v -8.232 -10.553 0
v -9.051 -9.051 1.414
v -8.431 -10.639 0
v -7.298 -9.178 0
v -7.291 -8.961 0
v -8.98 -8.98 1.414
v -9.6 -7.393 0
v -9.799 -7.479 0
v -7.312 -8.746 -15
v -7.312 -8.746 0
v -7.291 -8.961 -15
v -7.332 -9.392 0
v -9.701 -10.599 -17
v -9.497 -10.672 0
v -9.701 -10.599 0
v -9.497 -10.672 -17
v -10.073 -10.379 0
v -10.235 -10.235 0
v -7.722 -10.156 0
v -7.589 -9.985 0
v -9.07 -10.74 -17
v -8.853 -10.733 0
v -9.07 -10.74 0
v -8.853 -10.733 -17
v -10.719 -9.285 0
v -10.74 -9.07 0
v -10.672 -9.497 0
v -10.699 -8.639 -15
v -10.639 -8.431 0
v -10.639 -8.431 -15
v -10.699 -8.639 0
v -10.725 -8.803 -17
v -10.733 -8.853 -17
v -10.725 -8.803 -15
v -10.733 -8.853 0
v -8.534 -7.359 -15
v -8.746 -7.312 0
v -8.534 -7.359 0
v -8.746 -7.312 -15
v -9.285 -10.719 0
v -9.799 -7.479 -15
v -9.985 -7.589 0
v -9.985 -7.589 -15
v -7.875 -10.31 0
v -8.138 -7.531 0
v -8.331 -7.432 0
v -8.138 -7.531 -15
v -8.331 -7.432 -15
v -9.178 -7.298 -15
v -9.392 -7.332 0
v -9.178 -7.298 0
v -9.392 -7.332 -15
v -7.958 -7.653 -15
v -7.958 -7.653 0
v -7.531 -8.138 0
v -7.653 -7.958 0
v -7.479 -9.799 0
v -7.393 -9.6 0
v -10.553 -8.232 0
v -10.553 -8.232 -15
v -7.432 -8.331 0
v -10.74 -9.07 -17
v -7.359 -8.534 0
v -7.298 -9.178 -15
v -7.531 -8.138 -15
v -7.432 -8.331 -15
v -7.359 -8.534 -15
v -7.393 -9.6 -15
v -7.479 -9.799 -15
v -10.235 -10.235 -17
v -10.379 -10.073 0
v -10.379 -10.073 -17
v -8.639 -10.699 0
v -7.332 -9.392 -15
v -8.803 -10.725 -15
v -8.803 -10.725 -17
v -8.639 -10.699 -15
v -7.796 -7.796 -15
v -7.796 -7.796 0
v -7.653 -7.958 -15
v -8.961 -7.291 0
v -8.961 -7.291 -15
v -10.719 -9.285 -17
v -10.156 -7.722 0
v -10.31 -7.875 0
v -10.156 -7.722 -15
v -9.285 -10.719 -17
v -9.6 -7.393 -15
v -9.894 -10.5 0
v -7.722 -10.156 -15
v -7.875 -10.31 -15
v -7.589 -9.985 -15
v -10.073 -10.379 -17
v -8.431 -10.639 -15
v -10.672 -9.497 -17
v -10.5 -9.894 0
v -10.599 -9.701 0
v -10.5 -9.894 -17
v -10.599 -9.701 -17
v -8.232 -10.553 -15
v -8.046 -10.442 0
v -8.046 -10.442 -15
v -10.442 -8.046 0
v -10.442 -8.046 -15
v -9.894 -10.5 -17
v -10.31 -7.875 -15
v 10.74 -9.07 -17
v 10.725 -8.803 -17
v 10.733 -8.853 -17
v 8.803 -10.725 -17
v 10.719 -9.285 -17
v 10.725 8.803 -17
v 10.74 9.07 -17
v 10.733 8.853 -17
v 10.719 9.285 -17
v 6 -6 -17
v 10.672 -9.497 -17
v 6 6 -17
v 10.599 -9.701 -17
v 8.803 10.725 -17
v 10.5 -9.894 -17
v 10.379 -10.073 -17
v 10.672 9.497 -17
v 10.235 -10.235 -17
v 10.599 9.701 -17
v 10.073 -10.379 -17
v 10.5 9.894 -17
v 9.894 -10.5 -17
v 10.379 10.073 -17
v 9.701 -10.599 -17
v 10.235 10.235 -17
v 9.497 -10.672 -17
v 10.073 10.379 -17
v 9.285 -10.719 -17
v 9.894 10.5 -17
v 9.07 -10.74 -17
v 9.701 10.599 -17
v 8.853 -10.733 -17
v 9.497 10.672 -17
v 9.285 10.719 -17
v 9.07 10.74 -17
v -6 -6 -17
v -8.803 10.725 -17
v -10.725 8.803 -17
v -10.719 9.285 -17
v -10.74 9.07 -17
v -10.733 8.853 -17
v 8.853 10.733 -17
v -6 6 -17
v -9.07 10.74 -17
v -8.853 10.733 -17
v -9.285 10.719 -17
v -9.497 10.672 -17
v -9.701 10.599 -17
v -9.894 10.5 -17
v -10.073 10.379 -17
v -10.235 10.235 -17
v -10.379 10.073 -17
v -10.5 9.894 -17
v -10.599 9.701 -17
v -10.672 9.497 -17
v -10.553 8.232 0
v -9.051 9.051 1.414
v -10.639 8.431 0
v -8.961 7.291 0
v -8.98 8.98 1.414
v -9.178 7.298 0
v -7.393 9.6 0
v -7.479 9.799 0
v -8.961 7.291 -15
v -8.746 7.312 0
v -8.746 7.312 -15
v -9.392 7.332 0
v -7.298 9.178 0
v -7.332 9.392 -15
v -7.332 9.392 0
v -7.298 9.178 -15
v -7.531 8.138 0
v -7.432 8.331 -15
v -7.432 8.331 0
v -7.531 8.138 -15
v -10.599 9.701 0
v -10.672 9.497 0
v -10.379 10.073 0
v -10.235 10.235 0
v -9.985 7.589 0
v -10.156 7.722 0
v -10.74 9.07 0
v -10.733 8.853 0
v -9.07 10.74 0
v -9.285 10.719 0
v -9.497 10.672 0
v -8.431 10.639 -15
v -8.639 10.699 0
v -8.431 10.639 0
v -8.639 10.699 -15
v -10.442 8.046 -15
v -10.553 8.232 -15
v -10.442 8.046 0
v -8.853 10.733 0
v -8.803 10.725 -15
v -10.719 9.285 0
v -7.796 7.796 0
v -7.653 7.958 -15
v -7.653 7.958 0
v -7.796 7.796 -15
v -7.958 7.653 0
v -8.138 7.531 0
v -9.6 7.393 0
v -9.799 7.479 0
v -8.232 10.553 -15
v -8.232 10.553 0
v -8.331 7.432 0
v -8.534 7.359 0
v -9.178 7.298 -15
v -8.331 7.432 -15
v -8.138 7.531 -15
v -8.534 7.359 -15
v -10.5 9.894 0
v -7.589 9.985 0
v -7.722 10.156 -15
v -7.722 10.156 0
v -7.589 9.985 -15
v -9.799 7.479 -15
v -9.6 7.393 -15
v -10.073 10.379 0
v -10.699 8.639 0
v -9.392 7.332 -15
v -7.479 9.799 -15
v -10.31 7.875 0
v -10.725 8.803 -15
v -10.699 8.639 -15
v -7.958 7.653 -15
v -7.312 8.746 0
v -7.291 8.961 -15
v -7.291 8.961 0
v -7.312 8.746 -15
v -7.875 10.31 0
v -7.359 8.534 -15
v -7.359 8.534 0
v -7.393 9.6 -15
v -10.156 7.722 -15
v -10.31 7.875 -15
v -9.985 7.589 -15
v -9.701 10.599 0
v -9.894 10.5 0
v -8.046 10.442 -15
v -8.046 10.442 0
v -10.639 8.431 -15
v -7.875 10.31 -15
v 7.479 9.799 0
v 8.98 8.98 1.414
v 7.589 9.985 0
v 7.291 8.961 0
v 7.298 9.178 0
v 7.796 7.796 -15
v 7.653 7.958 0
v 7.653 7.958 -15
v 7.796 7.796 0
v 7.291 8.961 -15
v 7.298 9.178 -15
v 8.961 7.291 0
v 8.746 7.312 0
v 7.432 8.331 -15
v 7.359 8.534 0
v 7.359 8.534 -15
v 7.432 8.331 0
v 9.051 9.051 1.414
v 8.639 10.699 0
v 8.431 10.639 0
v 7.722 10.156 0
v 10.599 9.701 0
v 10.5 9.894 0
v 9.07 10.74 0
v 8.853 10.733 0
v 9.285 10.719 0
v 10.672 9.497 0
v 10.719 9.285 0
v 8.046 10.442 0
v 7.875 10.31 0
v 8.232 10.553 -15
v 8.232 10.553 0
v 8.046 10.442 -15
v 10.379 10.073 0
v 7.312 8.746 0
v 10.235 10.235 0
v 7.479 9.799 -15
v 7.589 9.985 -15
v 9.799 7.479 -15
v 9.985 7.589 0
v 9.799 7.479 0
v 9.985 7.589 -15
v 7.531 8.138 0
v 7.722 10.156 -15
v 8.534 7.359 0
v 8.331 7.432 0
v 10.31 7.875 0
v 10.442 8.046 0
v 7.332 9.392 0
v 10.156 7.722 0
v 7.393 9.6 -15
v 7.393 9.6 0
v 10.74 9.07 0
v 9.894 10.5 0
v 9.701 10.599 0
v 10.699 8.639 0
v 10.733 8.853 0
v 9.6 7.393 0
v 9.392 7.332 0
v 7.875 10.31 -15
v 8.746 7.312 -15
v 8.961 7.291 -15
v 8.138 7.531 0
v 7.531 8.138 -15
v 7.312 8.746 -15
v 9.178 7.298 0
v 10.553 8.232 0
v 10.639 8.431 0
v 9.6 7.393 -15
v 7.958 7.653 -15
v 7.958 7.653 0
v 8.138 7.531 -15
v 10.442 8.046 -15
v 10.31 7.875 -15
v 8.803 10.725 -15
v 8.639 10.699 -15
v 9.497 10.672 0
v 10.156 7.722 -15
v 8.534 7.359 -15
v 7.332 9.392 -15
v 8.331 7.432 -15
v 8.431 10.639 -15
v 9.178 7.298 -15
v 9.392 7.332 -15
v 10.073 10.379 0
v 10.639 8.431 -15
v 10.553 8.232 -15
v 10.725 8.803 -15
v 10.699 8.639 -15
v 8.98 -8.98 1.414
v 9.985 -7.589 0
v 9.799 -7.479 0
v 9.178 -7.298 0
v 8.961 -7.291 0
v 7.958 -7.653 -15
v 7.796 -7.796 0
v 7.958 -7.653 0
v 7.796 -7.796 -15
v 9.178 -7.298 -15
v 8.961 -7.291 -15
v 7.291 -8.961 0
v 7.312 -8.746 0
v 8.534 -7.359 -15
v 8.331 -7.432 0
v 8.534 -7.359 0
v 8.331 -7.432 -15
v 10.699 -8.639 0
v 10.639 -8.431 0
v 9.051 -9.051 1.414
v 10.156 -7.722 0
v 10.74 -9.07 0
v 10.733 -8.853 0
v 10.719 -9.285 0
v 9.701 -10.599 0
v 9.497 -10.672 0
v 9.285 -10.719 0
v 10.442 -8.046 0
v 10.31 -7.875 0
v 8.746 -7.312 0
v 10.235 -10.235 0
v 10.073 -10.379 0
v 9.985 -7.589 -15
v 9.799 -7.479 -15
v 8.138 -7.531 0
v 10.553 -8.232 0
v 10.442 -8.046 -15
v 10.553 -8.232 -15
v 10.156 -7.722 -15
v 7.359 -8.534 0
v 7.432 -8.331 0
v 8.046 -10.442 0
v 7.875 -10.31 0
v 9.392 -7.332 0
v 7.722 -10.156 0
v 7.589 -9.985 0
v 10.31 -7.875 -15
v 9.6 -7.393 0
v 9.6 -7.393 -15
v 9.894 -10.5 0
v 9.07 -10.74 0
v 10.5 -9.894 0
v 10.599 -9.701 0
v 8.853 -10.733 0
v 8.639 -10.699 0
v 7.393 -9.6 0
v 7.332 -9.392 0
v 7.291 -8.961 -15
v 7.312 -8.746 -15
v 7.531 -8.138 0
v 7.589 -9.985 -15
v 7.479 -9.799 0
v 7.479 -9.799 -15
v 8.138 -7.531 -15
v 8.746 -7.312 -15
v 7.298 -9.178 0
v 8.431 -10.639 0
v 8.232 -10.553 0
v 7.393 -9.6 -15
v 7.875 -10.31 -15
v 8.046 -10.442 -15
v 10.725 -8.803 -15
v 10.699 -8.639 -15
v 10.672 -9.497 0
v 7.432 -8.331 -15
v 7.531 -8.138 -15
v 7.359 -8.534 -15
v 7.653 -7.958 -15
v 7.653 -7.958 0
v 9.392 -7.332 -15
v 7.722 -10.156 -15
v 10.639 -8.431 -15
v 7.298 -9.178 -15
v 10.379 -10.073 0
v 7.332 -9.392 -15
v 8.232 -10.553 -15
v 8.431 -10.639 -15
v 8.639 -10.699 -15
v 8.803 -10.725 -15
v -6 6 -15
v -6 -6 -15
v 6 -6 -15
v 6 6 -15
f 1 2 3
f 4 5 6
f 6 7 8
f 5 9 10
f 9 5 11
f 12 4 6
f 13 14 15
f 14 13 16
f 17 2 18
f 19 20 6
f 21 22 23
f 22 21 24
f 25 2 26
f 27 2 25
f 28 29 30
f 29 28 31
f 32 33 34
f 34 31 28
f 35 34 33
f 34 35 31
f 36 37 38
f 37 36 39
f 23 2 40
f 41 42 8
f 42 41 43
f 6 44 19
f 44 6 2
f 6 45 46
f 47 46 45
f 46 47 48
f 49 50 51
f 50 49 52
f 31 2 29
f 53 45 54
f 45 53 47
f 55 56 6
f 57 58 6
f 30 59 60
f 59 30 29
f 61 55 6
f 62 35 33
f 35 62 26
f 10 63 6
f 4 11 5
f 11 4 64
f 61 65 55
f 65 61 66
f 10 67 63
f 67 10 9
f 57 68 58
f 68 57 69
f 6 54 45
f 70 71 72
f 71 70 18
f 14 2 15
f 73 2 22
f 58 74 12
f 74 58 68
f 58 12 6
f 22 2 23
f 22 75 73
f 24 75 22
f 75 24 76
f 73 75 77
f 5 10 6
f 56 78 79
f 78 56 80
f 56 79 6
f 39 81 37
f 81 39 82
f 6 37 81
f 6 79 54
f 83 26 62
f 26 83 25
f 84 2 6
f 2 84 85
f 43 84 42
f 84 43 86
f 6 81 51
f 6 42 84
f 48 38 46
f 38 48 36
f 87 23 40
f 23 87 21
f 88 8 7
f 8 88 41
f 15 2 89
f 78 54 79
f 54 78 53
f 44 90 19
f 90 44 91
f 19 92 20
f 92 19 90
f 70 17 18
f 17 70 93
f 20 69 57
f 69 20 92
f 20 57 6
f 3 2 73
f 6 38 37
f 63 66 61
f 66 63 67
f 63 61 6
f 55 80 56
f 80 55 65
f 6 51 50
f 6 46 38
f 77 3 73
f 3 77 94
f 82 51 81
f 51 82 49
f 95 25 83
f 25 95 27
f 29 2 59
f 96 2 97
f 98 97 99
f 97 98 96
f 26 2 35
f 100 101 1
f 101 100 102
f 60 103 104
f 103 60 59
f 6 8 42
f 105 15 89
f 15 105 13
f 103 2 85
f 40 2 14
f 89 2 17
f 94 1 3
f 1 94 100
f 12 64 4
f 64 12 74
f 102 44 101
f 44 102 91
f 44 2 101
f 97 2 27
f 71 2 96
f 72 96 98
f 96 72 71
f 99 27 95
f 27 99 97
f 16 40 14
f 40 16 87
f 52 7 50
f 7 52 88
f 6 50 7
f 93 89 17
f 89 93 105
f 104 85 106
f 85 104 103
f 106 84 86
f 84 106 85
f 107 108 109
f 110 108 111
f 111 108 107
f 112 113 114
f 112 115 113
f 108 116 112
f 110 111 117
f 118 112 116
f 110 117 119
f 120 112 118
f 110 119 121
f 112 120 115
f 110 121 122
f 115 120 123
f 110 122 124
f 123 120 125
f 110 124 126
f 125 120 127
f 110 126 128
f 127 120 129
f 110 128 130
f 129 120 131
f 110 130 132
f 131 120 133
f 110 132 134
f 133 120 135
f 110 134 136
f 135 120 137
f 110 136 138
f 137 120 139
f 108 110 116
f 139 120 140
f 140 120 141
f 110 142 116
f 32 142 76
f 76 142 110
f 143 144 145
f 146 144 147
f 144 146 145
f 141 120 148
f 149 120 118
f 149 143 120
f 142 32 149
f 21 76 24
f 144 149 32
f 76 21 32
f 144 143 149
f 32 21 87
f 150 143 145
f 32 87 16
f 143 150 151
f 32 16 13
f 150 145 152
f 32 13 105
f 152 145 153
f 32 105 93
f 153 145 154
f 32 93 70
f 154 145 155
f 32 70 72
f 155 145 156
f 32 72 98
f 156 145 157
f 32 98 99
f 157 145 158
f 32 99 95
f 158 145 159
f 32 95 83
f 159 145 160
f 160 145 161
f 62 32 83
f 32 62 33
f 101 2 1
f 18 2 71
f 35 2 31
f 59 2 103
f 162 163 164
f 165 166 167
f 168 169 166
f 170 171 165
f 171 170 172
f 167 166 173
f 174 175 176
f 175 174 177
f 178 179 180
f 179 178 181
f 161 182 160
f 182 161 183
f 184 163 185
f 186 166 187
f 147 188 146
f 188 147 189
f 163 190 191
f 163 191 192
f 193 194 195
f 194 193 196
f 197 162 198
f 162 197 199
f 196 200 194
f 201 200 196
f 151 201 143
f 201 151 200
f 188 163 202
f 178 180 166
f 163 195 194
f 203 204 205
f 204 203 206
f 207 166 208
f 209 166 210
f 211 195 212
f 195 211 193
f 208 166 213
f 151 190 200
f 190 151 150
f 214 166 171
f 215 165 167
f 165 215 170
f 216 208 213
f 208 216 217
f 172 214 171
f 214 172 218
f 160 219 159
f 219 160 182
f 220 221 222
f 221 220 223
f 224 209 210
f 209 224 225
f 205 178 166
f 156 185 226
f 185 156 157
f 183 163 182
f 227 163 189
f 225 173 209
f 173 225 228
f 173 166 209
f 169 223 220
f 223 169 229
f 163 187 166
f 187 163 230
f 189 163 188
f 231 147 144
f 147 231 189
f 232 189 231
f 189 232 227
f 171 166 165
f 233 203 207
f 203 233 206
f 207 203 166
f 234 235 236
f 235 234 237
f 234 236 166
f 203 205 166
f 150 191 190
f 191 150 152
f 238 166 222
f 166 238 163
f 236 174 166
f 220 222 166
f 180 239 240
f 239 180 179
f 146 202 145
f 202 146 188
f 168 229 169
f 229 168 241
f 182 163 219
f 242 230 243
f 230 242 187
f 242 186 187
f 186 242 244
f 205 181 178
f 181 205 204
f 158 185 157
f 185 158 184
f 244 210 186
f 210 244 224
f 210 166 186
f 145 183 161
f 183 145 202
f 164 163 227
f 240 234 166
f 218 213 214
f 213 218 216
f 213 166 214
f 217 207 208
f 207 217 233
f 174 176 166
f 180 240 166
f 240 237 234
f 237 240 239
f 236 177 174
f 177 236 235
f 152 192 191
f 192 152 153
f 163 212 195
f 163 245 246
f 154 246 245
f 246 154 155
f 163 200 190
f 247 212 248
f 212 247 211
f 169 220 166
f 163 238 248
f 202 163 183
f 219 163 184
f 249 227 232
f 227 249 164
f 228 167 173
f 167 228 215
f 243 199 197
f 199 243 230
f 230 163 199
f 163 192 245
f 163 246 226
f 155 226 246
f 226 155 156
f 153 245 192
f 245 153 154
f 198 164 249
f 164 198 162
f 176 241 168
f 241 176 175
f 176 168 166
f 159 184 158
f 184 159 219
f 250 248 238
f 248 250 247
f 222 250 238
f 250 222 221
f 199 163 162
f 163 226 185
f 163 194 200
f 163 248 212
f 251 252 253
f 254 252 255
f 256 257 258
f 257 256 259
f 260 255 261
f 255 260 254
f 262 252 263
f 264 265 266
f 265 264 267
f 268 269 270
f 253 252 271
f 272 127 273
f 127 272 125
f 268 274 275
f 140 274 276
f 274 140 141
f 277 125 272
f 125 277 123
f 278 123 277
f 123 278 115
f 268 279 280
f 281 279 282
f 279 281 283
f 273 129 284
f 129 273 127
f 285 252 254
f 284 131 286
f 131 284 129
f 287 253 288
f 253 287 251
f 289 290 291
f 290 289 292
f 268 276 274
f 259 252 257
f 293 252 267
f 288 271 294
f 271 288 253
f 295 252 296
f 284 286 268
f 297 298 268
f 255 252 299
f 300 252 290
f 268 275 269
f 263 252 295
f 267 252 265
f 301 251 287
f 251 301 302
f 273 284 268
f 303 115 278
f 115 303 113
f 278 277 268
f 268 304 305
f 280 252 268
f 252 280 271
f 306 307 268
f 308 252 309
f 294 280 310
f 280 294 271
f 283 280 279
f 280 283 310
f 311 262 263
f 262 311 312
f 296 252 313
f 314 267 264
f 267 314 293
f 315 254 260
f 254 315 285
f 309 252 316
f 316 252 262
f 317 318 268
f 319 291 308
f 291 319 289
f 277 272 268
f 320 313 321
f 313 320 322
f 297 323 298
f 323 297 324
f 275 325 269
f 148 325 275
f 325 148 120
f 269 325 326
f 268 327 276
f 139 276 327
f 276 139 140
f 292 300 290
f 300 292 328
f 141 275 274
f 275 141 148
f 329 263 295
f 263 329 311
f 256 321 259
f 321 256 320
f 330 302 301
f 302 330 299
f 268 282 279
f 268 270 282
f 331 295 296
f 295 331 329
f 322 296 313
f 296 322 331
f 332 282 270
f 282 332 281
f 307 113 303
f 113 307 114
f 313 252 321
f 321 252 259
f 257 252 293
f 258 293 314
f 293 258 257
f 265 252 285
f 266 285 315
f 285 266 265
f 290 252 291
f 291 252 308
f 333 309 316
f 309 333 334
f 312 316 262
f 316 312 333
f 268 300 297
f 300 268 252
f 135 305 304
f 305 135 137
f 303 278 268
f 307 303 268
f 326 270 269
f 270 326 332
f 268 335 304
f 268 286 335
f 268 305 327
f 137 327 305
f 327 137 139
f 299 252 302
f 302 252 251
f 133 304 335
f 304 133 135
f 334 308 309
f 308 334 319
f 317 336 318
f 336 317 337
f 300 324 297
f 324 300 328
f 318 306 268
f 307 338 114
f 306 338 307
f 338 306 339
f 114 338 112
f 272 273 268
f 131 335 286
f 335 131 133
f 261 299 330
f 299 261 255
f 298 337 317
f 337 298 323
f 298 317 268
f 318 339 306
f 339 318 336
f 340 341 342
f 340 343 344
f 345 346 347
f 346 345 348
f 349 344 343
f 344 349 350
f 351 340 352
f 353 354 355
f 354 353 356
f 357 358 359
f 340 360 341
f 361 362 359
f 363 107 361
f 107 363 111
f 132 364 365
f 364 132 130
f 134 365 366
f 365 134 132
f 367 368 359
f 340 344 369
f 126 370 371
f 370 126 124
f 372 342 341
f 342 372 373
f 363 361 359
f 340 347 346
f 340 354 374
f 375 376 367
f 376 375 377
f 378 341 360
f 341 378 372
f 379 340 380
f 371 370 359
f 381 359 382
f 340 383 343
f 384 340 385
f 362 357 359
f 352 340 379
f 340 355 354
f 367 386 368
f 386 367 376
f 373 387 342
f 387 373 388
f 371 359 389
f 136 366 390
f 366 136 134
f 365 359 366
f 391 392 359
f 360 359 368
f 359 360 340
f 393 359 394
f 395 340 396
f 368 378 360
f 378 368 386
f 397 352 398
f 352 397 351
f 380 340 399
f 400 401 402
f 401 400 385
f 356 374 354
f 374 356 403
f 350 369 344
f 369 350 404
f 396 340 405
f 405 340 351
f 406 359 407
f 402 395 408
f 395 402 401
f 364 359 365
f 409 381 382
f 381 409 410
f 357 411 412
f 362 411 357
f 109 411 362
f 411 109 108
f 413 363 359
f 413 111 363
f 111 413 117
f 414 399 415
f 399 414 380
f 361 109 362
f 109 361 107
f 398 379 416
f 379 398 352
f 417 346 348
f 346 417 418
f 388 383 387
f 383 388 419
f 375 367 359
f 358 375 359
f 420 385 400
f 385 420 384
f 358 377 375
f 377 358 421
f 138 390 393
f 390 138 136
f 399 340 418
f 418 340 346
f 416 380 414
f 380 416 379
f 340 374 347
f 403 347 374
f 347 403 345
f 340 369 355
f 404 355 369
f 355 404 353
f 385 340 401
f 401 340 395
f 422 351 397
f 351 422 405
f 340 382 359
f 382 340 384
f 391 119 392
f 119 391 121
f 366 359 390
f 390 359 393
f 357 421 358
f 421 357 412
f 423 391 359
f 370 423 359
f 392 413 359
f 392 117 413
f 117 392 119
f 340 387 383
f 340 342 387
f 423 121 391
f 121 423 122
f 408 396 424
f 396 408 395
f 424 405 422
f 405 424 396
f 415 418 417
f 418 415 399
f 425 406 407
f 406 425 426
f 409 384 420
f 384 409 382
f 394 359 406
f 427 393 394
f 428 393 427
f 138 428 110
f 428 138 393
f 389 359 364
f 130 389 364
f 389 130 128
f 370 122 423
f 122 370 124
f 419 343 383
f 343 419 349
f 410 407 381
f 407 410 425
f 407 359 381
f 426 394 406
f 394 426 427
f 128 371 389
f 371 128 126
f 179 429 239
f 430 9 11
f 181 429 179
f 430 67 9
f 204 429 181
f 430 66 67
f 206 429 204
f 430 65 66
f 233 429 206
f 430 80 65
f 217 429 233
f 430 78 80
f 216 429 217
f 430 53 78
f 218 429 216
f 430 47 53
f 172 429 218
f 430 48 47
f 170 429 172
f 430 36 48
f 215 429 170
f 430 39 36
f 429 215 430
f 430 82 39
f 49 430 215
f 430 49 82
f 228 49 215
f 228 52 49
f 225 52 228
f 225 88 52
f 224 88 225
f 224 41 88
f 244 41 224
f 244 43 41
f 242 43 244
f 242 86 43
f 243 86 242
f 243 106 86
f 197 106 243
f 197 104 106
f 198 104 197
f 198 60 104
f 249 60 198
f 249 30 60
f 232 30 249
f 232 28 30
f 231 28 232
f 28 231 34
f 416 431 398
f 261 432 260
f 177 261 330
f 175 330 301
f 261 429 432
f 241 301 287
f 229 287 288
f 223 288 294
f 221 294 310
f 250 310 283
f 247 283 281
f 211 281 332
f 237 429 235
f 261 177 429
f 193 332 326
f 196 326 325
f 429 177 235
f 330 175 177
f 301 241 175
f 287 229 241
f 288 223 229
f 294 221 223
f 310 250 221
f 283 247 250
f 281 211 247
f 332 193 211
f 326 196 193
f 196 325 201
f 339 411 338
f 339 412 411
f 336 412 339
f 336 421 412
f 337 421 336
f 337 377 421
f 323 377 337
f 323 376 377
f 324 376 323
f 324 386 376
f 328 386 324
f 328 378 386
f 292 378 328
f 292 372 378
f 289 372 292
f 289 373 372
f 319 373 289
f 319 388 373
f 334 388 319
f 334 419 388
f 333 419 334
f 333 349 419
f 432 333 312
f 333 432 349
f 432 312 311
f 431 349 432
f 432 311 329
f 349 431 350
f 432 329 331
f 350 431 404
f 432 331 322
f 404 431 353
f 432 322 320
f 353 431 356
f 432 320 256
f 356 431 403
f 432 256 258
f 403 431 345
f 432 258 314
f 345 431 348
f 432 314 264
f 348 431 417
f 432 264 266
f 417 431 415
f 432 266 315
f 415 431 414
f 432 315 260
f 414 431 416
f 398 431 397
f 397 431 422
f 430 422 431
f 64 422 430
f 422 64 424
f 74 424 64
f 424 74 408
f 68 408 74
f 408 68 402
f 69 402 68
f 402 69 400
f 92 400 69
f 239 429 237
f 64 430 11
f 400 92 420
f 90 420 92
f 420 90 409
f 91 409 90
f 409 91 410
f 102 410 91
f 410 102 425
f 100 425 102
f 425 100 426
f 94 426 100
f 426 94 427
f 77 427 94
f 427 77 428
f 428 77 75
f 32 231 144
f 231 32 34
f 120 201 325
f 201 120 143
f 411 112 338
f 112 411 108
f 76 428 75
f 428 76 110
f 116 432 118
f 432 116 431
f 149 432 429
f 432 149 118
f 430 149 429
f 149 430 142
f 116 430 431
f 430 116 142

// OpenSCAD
$fn=50;
D=3.45;
H=15;
R=25.5;

unit();

module unit() rotate([0,180,45]) {
    for(i=[0:3]) rotate([0,0,i*90]) translate([R/2,0])
        union() hull() {  
            cylinder(h=H+2,d=D);
            rotate([45,0]) cube([0.1,2,2],center=true);
          
        }
        
    translate([0,0,H])
    rotate([0,0,45]) linear_extrude(2)
    difference() {
        offset(D/2) square(18,center=true);
        square(12,center=true);
    }
}
